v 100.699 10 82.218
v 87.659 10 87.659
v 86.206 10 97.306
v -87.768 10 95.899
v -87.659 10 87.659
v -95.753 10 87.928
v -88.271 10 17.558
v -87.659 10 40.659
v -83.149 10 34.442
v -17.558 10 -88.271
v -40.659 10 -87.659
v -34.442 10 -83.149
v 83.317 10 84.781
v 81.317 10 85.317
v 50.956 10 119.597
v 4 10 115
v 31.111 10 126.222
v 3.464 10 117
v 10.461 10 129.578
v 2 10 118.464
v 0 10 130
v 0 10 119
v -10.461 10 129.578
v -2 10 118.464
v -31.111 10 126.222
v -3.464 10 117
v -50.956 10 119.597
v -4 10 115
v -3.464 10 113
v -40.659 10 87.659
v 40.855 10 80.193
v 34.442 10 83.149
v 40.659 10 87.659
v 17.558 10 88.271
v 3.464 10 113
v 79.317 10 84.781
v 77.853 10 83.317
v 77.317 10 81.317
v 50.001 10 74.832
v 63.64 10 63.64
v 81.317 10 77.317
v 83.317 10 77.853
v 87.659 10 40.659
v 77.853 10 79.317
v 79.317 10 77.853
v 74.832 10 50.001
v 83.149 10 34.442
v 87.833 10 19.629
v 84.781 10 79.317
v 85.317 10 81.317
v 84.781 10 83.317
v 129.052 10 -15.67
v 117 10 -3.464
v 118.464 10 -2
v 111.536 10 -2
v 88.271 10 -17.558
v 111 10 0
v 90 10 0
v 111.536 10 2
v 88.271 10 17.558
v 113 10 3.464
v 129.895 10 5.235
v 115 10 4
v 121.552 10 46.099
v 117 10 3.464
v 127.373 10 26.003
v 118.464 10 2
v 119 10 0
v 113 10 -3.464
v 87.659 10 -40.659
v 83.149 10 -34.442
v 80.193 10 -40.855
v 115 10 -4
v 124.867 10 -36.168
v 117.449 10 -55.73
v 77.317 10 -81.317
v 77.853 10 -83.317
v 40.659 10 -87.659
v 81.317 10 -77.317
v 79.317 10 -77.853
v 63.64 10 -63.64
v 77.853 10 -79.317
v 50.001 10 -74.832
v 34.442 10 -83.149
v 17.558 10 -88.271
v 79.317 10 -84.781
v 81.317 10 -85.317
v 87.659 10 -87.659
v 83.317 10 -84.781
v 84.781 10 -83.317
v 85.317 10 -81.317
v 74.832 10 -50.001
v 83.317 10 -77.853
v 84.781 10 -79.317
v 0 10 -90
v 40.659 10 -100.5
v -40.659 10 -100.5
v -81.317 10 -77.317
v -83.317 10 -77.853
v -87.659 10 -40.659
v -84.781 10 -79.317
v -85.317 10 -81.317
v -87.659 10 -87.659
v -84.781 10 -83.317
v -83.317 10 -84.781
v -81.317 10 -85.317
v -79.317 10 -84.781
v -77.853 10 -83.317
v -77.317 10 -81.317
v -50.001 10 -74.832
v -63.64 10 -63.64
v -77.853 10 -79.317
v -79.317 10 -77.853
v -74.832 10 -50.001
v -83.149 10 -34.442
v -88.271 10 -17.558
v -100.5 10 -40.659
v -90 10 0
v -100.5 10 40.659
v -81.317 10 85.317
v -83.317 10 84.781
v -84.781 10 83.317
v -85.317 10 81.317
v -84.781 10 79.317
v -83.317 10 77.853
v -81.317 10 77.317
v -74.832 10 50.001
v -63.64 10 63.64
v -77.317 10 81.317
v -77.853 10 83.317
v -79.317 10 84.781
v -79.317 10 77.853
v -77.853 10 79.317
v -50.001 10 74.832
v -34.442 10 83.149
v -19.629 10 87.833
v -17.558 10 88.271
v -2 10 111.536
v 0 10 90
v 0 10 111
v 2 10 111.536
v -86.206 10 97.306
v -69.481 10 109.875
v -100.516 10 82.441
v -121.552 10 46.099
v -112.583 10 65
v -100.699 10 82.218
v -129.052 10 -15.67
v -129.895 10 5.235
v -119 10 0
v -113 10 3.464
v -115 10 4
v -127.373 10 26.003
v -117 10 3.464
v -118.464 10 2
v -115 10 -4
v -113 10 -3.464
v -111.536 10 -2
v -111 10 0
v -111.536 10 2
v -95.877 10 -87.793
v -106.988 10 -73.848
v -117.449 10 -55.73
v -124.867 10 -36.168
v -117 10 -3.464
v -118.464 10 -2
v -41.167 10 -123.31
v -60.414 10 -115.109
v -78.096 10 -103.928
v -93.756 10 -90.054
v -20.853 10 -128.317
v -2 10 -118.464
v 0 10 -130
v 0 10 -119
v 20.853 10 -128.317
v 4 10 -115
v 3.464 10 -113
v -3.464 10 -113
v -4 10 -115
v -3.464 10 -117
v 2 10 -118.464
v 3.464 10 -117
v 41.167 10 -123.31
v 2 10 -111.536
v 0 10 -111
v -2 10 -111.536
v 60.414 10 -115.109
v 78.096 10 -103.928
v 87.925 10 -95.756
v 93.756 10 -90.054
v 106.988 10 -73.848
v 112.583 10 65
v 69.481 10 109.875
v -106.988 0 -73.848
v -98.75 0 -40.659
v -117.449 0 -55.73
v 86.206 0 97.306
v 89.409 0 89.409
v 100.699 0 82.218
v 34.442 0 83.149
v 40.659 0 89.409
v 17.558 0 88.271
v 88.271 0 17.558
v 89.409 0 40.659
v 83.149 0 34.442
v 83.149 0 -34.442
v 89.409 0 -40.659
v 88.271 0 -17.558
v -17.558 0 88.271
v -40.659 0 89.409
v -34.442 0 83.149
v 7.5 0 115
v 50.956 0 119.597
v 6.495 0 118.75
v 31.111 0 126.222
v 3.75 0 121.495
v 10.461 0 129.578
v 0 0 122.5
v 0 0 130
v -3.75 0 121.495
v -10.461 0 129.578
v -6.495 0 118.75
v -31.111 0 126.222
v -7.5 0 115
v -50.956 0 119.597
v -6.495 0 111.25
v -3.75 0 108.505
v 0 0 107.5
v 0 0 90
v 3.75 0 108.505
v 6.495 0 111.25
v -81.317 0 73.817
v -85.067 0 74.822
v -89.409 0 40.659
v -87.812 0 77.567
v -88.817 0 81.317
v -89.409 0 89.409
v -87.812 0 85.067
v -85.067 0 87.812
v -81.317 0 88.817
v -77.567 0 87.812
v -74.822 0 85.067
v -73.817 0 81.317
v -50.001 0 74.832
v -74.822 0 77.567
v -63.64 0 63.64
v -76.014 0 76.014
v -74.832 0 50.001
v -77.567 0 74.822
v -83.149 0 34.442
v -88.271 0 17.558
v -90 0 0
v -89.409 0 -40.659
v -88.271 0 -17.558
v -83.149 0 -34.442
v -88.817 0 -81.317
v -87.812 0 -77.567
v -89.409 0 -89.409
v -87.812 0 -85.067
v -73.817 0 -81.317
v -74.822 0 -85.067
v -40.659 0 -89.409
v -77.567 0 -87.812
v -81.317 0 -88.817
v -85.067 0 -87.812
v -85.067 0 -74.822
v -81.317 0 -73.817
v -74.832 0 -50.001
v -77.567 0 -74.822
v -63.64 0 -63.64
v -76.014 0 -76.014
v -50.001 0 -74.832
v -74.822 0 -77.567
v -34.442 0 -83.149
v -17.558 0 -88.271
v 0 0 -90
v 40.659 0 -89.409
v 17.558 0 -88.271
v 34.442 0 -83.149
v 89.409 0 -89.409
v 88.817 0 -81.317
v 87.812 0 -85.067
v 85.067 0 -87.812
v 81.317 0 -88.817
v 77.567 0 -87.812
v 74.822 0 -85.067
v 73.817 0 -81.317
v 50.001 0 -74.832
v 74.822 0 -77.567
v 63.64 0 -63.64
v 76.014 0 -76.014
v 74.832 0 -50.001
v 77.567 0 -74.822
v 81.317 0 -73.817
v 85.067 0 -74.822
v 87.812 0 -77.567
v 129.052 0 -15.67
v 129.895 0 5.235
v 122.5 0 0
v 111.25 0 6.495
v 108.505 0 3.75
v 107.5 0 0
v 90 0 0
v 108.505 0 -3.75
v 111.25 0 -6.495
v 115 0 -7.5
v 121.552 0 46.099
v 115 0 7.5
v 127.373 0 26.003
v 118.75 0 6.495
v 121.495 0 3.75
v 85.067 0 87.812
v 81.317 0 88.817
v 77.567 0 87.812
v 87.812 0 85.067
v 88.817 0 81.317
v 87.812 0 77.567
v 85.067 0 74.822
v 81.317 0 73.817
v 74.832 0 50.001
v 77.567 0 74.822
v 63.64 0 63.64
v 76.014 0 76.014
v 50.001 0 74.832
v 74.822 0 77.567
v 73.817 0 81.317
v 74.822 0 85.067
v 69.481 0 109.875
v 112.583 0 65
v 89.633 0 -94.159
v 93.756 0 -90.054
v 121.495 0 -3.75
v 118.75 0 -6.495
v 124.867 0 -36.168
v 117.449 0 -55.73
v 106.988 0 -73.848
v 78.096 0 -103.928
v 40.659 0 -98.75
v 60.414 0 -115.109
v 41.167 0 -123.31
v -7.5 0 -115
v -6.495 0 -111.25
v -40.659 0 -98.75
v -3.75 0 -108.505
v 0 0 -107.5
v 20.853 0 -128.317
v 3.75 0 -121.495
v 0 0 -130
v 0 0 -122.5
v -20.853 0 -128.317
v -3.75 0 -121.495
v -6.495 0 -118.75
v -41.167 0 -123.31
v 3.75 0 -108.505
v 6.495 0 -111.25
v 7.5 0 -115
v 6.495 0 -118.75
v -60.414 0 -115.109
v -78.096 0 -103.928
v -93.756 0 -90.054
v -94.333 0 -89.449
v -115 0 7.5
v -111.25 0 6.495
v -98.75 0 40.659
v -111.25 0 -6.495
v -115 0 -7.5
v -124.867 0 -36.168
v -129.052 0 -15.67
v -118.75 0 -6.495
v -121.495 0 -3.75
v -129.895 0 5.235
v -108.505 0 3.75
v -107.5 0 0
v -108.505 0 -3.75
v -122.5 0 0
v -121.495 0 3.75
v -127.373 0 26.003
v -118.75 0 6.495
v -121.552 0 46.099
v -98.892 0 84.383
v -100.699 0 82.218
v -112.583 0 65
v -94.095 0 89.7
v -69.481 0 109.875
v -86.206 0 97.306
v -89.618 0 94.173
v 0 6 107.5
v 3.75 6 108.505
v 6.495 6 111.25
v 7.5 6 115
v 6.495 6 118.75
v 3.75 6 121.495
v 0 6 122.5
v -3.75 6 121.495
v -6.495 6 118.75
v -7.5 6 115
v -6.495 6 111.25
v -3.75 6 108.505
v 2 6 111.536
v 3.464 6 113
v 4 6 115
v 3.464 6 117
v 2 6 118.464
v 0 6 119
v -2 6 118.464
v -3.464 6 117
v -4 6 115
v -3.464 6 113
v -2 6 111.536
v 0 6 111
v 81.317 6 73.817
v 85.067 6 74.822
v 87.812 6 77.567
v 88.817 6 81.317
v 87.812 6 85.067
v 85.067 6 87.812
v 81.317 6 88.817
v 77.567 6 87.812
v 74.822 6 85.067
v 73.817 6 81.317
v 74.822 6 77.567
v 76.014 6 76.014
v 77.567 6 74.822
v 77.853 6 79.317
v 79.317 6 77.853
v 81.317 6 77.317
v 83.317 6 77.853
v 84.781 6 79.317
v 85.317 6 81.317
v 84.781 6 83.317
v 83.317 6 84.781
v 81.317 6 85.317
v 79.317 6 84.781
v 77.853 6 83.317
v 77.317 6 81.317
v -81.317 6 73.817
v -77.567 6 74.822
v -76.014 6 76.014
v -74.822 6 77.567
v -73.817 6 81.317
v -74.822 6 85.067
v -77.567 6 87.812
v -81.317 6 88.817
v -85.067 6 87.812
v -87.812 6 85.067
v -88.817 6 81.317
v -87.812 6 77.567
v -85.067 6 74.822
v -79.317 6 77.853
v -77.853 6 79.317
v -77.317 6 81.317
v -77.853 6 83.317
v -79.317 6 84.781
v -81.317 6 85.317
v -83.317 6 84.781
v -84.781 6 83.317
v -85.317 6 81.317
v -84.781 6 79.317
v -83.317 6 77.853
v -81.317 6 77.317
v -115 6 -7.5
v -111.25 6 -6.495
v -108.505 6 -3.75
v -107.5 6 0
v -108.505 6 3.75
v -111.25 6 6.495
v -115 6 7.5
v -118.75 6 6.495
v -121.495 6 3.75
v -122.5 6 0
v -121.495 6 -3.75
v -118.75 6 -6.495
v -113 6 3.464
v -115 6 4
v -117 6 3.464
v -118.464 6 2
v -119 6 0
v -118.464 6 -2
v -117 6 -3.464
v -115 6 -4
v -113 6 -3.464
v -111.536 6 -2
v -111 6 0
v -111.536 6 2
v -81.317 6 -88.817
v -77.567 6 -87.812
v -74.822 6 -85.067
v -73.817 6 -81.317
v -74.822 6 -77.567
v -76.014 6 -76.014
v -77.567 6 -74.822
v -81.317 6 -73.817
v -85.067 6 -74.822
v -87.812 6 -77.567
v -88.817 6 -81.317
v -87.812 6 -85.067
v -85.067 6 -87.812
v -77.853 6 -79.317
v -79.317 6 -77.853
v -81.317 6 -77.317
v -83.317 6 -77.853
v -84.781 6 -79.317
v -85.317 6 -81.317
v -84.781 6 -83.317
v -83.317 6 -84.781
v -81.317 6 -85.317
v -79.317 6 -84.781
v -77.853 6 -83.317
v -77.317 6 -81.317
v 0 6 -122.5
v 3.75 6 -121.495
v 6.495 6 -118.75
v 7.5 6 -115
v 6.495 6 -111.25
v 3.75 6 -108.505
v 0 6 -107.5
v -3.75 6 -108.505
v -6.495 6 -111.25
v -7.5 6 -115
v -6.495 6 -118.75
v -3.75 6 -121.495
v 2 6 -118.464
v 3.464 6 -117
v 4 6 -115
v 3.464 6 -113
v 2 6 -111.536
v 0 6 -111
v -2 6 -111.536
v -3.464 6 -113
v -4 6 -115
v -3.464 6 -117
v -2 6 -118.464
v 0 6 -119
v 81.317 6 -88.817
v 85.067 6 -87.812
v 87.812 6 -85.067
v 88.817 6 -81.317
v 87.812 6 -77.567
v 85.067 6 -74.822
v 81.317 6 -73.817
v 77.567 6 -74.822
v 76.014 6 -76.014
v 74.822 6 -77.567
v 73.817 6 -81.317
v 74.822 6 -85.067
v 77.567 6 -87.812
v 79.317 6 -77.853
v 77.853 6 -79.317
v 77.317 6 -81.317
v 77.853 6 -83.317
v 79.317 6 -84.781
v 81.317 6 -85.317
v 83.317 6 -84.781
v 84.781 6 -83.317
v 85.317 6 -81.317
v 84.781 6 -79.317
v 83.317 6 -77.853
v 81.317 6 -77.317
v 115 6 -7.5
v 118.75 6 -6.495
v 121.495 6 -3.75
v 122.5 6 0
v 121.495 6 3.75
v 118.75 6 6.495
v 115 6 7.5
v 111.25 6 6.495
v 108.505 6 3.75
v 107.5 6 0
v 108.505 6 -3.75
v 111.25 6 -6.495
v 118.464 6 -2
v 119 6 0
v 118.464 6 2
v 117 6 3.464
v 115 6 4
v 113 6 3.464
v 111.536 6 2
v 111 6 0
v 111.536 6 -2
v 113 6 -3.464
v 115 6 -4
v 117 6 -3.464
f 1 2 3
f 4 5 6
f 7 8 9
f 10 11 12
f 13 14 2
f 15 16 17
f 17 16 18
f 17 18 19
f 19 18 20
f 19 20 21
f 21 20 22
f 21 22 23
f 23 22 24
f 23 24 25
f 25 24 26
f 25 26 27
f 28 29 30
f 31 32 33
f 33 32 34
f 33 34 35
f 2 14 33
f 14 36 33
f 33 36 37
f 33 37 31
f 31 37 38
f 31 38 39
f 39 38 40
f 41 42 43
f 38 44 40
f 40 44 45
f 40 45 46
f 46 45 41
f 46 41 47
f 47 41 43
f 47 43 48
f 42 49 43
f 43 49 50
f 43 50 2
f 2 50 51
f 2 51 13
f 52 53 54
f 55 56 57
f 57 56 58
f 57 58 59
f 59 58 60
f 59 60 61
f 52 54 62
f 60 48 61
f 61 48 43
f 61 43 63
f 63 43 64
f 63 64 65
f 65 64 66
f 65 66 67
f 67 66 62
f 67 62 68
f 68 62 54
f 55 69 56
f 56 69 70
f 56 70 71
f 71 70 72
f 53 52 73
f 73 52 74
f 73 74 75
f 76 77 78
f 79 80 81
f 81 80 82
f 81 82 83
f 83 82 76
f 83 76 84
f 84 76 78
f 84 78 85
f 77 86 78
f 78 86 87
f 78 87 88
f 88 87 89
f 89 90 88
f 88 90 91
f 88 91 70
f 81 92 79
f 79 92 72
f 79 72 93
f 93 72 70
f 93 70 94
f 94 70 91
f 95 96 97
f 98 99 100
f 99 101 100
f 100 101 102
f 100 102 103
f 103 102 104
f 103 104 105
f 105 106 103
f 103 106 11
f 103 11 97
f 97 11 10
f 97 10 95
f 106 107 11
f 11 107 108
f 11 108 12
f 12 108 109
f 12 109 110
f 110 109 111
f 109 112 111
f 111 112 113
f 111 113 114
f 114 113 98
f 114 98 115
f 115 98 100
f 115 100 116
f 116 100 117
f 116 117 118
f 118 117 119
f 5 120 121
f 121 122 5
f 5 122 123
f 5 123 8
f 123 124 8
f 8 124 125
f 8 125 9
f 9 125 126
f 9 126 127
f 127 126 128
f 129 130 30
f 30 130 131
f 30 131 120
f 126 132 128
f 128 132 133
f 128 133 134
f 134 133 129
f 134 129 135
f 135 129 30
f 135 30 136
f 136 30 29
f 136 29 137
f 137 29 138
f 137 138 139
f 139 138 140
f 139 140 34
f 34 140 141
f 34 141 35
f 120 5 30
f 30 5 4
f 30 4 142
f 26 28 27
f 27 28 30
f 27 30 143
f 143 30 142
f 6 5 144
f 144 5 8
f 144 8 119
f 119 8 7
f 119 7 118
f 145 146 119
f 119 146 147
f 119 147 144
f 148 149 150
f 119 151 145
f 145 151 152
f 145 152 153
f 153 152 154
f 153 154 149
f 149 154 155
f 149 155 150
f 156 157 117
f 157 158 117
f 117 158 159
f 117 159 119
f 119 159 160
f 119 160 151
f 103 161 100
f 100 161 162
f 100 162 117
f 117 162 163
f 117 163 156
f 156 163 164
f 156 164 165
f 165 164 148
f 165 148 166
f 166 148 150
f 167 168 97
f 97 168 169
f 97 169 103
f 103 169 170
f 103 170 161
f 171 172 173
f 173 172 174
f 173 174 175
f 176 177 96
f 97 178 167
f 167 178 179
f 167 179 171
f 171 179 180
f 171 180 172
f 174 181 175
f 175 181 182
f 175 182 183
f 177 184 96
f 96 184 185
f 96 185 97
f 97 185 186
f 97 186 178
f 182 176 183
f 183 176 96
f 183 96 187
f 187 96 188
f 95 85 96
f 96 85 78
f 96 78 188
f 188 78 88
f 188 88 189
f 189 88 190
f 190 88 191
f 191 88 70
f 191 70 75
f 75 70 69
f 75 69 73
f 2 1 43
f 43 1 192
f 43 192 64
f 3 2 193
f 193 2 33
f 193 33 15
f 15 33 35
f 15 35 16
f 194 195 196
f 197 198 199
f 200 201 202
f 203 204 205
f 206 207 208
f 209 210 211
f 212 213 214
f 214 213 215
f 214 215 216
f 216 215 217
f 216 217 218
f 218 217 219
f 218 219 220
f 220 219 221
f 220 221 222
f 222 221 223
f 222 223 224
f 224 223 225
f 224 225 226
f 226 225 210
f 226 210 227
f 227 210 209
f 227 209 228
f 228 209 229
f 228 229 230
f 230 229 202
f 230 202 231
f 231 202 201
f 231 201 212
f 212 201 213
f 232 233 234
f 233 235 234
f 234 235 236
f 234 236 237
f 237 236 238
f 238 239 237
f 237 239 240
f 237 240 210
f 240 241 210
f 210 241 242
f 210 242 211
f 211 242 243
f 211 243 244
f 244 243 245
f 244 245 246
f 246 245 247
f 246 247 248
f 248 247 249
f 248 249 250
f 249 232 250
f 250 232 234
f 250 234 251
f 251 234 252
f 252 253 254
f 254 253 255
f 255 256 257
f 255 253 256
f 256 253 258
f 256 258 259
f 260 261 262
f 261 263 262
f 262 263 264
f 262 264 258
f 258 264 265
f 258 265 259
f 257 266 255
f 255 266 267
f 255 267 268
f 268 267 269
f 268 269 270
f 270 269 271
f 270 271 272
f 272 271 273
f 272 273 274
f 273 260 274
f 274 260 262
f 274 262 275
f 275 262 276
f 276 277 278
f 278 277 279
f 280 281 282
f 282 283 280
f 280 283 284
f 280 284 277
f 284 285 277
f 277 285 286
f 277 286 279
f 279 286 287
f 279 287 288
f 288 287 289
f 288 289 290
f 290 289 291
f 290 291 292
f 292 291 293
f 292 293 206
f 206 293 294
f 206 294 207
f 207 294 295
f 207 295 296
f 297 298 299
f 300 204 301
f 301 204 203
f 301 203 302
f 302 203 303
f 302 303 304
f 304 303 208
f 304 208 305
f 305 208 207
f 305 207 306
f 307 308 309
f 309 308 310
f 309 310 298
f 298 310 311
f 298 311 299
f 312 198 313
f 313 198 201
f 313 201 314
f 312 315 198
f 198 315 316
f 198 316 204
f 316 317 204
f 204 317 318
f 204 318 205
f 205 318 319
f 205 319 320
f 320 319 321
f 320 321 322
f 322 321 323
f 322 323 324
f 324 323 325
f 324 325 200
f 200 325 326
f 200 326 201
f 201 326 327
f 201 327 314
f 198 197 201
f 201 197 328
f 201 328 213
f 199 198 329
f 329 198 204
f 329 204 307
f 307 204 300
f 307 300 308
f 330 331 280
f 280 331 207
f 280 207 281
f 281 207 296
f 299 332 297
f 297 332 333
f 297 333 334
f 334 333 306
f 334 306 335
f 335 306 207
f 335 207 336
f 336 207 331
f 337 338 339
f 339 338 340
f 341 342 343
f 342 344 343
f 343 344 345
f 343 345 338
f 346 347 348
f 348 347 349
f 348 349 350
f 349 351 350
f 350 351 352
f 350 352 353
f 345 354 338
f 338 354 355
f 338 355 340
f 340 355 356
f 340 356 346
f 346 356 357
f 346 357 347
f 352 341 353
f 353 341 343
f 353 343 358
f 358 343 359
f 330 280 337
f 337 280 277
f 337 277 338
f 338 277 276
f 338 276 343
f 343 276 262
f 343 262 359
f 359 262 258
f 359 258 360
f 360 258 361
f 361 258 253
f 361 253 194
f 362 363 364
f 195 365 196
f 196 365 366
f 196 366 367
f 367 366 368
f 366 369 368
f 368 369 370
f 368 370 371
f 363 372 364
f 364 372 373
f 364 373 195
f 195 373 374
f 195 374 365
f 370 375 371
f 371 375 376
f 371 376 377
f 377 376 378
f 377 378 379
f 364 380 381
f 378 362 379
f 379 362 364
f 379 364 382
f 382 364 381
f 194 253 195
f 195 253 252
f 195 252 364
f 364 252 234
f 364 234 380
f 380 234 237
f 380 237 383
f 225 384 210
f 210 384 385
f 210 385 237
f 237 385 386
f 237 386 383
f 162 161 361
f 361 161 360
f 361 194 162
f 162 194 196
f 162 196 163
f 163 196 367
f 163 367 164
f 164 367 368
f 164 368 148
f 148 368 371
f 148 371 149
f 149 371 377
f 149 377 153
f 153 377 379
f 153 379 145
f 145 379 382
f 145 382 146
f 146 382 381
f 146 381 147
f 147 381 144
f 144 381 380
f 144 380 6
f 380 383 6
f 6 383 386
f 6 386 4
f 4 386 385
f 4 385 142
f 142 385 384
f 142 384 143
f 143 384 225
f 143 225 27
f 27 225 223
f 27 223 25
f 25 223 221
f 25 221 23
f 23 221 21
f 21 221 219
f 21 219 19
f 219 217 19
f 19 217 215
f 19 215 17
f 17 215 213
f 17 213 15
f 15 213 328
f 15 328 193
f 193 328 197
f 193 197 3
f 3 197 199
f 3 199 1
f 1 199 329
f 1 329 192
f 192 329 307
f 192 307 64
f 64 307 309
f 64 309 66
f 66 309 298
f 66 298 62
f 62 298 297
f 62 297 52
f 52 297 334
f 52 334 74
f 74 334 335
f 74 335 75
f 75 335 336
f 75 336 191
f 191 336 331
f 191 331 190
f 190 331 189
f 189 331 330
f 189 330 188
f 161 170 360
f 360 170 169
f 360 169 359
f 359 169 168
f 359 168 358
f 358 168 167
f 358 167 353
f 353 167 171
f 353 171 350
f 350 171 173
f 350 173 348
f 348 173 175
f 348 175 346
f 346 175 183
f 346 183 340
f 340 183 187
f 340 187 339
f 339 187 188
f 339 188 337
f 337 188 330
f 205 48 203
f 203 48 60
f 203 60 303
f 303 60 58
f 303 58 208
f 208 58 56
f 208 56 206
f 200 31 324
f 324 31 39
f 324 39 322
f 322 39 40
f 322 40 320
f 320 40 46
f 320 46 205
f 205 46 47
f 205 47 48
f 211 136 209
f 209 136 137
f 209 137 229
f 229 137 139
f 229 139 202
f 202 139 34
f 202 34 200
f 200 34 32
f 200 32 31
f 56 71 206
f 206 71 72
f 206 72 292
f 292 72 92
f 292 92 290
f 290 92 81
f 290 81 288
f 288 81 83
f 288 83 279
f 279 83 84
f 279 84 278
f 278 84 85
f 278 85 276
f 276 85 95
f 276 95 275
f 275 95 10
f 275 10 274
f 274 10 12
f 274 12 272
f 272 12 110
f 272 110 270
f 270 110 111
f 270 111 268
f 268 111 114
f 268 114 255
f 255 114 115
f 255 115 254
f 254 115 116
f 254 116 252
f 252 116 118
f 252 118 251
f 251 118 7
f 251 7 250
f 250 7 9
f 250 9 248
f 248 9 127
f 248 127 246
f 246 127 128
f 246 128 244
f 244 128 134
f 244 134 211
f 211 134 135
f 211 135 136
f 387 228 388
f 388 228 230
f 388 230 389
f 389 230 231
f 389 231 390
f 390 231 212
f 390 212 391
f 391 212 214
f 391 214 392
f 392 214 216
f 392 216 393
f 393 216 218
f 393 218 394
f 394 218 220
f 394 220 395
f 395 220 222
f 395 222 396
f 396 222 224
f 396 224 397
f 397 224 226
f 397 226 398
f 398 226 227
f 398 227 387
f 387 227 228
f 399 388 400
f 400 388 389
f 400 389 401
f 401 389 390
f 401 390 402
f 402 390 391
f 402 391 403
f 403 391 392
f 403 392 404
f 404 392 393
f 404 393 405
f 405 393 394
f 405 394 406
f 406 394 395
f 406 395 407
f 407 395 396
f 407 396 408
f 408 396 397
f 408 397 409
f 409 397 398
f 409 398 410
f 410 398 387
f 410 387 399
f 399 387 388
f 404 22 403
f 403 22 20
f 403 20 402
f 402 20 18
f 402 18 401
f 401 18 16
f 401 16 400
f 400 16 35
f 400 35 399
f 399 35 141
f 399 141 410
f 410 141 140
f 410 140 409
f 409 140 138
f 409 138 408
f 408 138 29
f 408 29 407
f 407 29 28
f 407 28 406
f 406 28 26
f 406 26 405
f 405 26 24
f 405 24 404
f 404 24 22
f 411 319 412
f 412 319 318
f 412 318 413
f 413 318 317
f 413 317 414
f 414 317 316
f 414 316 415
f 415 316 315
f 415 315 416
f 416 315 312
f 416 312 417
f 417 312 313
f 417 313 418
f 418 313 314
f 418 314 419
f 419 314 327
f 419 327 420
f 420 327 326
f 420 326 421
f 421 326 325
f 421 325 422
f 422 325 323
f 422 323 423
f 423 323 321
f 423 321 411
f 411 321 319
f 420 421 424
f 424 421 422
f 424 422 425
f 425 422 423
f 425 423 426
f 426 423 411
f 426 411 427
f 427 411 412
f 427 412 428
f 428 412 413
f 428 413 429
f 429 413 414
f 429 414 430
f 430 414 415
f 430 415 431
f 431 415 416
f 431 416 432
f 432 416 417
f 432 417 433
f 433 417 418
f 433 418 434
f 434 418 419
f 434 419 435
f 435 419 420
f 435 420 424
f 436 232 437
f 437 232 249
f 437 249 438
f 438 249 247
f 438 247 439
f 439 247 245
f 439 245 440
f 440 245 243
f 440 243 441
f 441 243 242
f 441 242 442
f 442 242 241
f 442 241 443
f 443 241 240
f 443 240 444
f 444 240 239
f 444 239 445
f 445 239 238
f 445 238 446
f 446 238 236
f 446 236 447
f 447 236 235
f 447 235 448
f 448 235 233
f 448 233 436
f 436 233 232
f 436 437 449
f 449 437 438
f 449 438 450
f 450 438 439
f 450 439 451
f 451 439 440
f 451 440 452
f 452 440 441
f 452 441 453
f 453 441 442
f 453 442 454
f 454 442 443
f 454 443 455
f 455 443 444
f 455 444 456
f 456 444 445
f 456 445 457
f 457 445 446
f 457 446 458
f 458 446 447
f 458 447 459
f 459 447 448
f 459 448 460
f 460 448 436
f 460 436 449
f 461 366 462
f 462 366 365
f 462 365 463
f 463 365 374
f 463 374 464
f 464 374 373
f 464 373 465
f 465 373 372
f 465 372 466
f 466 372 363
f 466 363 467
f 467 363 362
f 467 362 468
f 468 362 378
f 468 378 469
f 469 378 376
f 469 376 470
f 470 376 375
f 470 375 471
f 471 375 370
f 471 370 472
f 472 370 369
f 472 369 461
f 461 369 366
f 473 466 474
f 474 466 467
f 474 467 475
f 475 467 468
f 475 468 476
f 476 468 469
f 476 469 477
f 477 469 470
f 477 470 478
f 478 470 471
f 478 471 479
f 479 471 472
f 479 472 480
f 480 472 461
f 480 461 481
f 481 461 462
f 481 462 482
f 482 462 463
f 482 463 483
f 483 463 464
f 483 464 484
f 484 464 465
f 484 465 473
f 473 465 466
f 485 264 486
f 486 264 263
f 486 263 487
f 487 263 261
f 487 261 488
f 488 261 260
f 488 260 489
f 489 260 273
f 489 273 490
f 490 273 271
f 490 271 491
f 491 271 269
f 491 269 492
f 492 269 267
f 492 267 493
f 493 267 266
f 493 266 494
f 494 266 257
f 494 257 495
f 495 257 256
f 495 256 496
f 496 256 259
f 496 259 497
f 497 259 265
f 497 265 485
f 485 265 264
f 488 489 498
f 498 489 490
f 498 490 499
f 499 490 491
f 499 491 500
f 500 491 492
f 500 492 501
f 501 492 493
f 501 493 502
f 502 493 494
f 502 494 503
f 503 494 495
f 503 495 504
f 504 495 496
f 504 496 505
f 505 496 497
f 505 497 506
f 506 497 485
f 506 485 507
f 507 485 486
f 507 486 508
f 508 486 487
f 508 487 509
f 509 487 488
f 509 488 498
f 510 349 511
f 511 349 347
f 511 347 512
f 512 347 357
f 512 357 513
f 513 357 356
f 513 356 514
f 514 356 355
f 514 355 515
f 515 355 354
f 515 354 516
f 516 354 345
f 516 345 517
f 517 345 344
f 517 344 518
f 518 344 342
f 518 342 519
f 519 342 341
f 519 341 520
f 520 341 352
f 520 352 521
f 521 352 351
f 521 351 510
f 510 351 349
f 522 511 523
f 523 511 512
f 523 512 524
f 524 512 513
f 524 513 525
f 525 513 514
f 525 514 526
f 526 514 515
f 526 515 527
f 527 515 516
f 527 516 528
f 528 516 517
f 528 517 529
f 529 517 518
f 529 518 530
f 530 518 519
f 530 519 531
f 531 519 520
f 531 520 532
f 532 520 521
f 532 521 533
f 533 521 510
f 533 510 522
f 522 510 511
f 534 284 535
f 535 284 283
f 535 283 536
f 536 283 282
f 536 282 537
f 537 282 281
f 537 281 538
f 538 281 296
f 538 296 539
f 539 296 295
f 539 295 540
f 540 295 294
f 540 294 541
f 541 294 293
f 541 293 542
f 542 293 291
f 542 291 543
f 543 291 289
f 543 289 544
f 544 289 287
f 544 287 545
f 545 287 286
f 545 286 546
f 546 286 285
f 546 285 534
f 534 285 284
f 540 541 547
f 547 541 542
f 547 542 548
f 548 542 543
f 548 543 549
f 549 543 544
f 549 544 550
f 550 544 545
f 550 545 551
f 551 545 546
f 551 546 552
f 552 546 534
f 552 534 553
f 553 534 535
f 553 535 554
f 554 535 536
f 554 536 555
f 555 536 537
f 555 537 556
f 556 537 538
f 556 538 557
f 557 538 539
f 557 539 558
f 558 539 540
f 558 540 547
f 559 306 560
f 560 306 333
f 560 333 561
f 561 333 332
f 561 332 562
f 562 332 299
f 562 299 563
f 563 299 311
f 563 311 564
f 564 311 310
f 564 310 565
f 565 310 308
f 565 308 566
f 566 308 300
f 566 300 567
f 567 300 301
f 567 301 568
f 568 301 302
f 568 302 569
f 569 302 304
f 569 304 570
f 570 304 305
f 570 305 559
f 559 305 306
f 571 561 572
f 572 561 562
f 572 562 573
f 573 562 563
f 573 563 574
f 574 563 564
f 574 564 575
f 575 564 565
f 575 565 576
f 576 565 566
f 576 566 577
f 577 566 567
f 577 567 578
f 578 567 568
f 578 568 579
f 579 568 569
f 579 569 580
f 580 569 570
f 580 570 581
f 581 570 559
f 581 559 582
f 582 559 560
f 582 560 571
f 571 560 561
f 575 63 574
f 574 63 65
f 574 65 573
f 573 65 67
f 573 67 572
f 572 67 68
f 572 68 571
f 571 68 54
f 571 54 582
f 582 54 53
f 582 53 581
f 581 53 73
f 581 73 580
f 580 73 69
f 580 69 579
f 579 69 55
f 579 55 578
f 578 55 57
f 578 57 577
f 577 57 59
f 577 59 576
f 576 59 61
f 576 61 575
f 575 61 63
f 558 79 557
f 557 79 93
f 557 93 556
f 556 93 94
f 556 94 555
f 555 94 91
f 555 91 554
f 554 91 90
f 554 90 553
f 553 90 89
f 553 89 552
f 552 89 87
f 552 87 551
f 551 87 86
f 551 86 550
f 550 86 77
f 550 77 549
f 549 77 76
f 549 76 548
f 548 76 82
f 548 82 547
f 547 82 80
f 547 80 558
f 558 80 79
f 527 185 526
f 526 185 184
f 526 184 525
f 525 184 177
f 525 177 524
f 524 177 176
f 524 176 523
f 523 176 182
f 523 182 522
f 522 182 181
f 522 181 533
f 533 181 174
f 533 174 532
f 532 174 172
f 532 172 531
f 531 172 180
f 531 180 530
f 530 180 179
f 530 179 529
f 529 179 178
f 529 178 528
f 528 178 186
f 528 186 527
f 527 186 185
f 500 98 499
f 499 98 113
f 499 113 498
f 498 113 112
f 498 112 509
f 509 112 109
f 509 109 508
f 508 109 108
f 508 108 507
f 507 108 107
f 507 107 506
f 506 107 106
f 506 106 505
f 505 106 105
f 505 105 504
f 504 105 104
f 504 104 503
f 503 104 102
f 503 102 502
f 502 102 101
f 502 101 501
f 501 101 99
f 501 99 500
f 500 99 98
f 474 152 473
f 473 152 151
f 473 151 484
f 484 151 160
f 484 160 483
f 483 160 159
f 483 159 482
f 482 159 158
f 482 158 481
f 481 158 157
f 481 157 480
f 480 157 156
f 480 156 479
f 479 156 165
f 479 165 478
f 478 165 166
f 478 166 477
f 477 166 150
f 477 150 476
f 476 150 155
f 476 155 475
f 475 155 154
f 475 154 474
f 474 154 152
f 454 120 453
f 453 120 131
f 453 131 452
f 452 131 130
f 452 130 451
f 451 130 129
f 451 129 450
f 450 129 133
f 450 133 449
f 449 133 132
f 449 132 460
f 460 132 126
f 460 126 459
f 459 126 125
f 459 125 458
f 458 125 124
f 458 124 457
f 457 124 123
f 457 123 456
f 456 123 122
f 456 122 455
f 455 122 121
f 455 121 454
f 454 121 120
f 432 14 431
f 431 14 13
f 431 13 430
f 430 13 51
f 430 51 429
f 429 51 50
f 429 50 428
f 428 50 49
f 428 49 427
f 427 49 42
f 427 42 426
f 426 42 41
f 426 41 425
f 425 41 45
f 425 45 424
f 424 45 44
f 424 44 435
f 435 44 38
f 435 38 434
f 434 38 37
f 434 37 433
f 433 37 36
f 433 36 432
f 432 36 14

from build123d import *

# Parameters (mm, degrees)
SKETCH1_R                      = 130
SKETCH1_R_2                    = 90
BOSS_EXTRUDE1_DEPTH            = 10
SKETCH2_R                      = 7.5
CUT_EXTRUDE1_DEPTH             = 6
CUT_EXTRUDE2_REACH             = 185.946
SKETCH3_R                      = 4
CUT_EXTRUDE2_DIRECTION_2_DEPTH = 184.945644145
CIRPATTERN1_COUNT              = 8


with BuildPart() as part:
    # Sketch1 → Boss-Extrude1 (new body)
    with BuildSketch(Plane(origin=(0, 0, 0), x_dir=(1, 0, 0), z_dir=(0, 1, 0))):
        with Locations(Location((0, 0, 0), (0, 0, 270))):
            Circle(SKETCH1_R)
        with Locations(Location((0, 0, 0), (0, 0, 270))):
            Circle(SKETCH1_R_2, mode=Mode.SUBTRACT)
    extrude(amount=BOSS_EXTRUDE1_DEPTH)

    # Sketch2 → Cut-Extrude1 (cut)
    with BuildSketch(Plane.XZ):
        with Locations(Location((0, 115, 0), (0, 0, 270))):
            Circle(SKETCH2_R)
    cut_extrude1 = extrude(amount=-CUT_EXTRUDE1_DEPTH, mode=Mode.SUBTRACT)

    # Sketch3 → Cut-Extrude2 (cut, up to next)
    with BuildSketch(Plane.XZ.offset(-6), mode=Mode.PRIVATE) as cut_extrude2_sk1:
        with Locations(Location((0, 115, 0), (0, 0, 90))):
            Circle(SKETCH3_R)
    cut_extrude2_tool1 = extrude(cut_extrude2_sk1.sketch, amount=-CUT_EXTRUDE2_REACH, mode=Mode.PRIVATE) & part.part
    cut_extrude2 = cut_extrude2_tool1.solids().sort_by_distance((0, 6, 115))[0]
    add(cut_extrude2, mode=Mode.SUBTRACT)

    # Sketch3 → Cut-Extrude2 direction 2 (cut)
    with BuildSketch(Plane.XZ.offset(-6)):
        with Locations(Location((0, 115, 0), (0, 0, 90))):
            Circle(SKETCH3_R)
    cut_extrude2_direction_2 = extrude(amount=CUT_EXTRUDE2_DIRECTION_2_DEPTH, mode=Mode.SUBTRACT)

    # CirPattern1: Cut-Extrude1, Cut-Extrude2, Cut-Extrude2 direction 2 ×8 about axis
    cirpattern1_axis = Axis((0, 0, 0), (0, 1, 0))
    add([cut_extrude1.rotate(cirpattern1_axis, i * 360 / CIRPATTERN1_COUNT) for i in range(1, CIRPATTERN1_COUNT)], mode=Mode.SUBTRACT)
    add([cut_extrude2.rotate(cirpattern1_axis, i * 360 / CIRPATTERN1_COUNT) for i in range(1, CIRPATTERN1_COUNT)], mode=Mode.SUBTRACT)
    add([cut_extrude2_direction_2.rotate(cirpattern1_axis, i * 360 / CIRPATTERN1_COUNT) for i in range(1, CIRPATTERN1_COUNT)], mode=Mode.SUBTRACT)


solid = part.part
